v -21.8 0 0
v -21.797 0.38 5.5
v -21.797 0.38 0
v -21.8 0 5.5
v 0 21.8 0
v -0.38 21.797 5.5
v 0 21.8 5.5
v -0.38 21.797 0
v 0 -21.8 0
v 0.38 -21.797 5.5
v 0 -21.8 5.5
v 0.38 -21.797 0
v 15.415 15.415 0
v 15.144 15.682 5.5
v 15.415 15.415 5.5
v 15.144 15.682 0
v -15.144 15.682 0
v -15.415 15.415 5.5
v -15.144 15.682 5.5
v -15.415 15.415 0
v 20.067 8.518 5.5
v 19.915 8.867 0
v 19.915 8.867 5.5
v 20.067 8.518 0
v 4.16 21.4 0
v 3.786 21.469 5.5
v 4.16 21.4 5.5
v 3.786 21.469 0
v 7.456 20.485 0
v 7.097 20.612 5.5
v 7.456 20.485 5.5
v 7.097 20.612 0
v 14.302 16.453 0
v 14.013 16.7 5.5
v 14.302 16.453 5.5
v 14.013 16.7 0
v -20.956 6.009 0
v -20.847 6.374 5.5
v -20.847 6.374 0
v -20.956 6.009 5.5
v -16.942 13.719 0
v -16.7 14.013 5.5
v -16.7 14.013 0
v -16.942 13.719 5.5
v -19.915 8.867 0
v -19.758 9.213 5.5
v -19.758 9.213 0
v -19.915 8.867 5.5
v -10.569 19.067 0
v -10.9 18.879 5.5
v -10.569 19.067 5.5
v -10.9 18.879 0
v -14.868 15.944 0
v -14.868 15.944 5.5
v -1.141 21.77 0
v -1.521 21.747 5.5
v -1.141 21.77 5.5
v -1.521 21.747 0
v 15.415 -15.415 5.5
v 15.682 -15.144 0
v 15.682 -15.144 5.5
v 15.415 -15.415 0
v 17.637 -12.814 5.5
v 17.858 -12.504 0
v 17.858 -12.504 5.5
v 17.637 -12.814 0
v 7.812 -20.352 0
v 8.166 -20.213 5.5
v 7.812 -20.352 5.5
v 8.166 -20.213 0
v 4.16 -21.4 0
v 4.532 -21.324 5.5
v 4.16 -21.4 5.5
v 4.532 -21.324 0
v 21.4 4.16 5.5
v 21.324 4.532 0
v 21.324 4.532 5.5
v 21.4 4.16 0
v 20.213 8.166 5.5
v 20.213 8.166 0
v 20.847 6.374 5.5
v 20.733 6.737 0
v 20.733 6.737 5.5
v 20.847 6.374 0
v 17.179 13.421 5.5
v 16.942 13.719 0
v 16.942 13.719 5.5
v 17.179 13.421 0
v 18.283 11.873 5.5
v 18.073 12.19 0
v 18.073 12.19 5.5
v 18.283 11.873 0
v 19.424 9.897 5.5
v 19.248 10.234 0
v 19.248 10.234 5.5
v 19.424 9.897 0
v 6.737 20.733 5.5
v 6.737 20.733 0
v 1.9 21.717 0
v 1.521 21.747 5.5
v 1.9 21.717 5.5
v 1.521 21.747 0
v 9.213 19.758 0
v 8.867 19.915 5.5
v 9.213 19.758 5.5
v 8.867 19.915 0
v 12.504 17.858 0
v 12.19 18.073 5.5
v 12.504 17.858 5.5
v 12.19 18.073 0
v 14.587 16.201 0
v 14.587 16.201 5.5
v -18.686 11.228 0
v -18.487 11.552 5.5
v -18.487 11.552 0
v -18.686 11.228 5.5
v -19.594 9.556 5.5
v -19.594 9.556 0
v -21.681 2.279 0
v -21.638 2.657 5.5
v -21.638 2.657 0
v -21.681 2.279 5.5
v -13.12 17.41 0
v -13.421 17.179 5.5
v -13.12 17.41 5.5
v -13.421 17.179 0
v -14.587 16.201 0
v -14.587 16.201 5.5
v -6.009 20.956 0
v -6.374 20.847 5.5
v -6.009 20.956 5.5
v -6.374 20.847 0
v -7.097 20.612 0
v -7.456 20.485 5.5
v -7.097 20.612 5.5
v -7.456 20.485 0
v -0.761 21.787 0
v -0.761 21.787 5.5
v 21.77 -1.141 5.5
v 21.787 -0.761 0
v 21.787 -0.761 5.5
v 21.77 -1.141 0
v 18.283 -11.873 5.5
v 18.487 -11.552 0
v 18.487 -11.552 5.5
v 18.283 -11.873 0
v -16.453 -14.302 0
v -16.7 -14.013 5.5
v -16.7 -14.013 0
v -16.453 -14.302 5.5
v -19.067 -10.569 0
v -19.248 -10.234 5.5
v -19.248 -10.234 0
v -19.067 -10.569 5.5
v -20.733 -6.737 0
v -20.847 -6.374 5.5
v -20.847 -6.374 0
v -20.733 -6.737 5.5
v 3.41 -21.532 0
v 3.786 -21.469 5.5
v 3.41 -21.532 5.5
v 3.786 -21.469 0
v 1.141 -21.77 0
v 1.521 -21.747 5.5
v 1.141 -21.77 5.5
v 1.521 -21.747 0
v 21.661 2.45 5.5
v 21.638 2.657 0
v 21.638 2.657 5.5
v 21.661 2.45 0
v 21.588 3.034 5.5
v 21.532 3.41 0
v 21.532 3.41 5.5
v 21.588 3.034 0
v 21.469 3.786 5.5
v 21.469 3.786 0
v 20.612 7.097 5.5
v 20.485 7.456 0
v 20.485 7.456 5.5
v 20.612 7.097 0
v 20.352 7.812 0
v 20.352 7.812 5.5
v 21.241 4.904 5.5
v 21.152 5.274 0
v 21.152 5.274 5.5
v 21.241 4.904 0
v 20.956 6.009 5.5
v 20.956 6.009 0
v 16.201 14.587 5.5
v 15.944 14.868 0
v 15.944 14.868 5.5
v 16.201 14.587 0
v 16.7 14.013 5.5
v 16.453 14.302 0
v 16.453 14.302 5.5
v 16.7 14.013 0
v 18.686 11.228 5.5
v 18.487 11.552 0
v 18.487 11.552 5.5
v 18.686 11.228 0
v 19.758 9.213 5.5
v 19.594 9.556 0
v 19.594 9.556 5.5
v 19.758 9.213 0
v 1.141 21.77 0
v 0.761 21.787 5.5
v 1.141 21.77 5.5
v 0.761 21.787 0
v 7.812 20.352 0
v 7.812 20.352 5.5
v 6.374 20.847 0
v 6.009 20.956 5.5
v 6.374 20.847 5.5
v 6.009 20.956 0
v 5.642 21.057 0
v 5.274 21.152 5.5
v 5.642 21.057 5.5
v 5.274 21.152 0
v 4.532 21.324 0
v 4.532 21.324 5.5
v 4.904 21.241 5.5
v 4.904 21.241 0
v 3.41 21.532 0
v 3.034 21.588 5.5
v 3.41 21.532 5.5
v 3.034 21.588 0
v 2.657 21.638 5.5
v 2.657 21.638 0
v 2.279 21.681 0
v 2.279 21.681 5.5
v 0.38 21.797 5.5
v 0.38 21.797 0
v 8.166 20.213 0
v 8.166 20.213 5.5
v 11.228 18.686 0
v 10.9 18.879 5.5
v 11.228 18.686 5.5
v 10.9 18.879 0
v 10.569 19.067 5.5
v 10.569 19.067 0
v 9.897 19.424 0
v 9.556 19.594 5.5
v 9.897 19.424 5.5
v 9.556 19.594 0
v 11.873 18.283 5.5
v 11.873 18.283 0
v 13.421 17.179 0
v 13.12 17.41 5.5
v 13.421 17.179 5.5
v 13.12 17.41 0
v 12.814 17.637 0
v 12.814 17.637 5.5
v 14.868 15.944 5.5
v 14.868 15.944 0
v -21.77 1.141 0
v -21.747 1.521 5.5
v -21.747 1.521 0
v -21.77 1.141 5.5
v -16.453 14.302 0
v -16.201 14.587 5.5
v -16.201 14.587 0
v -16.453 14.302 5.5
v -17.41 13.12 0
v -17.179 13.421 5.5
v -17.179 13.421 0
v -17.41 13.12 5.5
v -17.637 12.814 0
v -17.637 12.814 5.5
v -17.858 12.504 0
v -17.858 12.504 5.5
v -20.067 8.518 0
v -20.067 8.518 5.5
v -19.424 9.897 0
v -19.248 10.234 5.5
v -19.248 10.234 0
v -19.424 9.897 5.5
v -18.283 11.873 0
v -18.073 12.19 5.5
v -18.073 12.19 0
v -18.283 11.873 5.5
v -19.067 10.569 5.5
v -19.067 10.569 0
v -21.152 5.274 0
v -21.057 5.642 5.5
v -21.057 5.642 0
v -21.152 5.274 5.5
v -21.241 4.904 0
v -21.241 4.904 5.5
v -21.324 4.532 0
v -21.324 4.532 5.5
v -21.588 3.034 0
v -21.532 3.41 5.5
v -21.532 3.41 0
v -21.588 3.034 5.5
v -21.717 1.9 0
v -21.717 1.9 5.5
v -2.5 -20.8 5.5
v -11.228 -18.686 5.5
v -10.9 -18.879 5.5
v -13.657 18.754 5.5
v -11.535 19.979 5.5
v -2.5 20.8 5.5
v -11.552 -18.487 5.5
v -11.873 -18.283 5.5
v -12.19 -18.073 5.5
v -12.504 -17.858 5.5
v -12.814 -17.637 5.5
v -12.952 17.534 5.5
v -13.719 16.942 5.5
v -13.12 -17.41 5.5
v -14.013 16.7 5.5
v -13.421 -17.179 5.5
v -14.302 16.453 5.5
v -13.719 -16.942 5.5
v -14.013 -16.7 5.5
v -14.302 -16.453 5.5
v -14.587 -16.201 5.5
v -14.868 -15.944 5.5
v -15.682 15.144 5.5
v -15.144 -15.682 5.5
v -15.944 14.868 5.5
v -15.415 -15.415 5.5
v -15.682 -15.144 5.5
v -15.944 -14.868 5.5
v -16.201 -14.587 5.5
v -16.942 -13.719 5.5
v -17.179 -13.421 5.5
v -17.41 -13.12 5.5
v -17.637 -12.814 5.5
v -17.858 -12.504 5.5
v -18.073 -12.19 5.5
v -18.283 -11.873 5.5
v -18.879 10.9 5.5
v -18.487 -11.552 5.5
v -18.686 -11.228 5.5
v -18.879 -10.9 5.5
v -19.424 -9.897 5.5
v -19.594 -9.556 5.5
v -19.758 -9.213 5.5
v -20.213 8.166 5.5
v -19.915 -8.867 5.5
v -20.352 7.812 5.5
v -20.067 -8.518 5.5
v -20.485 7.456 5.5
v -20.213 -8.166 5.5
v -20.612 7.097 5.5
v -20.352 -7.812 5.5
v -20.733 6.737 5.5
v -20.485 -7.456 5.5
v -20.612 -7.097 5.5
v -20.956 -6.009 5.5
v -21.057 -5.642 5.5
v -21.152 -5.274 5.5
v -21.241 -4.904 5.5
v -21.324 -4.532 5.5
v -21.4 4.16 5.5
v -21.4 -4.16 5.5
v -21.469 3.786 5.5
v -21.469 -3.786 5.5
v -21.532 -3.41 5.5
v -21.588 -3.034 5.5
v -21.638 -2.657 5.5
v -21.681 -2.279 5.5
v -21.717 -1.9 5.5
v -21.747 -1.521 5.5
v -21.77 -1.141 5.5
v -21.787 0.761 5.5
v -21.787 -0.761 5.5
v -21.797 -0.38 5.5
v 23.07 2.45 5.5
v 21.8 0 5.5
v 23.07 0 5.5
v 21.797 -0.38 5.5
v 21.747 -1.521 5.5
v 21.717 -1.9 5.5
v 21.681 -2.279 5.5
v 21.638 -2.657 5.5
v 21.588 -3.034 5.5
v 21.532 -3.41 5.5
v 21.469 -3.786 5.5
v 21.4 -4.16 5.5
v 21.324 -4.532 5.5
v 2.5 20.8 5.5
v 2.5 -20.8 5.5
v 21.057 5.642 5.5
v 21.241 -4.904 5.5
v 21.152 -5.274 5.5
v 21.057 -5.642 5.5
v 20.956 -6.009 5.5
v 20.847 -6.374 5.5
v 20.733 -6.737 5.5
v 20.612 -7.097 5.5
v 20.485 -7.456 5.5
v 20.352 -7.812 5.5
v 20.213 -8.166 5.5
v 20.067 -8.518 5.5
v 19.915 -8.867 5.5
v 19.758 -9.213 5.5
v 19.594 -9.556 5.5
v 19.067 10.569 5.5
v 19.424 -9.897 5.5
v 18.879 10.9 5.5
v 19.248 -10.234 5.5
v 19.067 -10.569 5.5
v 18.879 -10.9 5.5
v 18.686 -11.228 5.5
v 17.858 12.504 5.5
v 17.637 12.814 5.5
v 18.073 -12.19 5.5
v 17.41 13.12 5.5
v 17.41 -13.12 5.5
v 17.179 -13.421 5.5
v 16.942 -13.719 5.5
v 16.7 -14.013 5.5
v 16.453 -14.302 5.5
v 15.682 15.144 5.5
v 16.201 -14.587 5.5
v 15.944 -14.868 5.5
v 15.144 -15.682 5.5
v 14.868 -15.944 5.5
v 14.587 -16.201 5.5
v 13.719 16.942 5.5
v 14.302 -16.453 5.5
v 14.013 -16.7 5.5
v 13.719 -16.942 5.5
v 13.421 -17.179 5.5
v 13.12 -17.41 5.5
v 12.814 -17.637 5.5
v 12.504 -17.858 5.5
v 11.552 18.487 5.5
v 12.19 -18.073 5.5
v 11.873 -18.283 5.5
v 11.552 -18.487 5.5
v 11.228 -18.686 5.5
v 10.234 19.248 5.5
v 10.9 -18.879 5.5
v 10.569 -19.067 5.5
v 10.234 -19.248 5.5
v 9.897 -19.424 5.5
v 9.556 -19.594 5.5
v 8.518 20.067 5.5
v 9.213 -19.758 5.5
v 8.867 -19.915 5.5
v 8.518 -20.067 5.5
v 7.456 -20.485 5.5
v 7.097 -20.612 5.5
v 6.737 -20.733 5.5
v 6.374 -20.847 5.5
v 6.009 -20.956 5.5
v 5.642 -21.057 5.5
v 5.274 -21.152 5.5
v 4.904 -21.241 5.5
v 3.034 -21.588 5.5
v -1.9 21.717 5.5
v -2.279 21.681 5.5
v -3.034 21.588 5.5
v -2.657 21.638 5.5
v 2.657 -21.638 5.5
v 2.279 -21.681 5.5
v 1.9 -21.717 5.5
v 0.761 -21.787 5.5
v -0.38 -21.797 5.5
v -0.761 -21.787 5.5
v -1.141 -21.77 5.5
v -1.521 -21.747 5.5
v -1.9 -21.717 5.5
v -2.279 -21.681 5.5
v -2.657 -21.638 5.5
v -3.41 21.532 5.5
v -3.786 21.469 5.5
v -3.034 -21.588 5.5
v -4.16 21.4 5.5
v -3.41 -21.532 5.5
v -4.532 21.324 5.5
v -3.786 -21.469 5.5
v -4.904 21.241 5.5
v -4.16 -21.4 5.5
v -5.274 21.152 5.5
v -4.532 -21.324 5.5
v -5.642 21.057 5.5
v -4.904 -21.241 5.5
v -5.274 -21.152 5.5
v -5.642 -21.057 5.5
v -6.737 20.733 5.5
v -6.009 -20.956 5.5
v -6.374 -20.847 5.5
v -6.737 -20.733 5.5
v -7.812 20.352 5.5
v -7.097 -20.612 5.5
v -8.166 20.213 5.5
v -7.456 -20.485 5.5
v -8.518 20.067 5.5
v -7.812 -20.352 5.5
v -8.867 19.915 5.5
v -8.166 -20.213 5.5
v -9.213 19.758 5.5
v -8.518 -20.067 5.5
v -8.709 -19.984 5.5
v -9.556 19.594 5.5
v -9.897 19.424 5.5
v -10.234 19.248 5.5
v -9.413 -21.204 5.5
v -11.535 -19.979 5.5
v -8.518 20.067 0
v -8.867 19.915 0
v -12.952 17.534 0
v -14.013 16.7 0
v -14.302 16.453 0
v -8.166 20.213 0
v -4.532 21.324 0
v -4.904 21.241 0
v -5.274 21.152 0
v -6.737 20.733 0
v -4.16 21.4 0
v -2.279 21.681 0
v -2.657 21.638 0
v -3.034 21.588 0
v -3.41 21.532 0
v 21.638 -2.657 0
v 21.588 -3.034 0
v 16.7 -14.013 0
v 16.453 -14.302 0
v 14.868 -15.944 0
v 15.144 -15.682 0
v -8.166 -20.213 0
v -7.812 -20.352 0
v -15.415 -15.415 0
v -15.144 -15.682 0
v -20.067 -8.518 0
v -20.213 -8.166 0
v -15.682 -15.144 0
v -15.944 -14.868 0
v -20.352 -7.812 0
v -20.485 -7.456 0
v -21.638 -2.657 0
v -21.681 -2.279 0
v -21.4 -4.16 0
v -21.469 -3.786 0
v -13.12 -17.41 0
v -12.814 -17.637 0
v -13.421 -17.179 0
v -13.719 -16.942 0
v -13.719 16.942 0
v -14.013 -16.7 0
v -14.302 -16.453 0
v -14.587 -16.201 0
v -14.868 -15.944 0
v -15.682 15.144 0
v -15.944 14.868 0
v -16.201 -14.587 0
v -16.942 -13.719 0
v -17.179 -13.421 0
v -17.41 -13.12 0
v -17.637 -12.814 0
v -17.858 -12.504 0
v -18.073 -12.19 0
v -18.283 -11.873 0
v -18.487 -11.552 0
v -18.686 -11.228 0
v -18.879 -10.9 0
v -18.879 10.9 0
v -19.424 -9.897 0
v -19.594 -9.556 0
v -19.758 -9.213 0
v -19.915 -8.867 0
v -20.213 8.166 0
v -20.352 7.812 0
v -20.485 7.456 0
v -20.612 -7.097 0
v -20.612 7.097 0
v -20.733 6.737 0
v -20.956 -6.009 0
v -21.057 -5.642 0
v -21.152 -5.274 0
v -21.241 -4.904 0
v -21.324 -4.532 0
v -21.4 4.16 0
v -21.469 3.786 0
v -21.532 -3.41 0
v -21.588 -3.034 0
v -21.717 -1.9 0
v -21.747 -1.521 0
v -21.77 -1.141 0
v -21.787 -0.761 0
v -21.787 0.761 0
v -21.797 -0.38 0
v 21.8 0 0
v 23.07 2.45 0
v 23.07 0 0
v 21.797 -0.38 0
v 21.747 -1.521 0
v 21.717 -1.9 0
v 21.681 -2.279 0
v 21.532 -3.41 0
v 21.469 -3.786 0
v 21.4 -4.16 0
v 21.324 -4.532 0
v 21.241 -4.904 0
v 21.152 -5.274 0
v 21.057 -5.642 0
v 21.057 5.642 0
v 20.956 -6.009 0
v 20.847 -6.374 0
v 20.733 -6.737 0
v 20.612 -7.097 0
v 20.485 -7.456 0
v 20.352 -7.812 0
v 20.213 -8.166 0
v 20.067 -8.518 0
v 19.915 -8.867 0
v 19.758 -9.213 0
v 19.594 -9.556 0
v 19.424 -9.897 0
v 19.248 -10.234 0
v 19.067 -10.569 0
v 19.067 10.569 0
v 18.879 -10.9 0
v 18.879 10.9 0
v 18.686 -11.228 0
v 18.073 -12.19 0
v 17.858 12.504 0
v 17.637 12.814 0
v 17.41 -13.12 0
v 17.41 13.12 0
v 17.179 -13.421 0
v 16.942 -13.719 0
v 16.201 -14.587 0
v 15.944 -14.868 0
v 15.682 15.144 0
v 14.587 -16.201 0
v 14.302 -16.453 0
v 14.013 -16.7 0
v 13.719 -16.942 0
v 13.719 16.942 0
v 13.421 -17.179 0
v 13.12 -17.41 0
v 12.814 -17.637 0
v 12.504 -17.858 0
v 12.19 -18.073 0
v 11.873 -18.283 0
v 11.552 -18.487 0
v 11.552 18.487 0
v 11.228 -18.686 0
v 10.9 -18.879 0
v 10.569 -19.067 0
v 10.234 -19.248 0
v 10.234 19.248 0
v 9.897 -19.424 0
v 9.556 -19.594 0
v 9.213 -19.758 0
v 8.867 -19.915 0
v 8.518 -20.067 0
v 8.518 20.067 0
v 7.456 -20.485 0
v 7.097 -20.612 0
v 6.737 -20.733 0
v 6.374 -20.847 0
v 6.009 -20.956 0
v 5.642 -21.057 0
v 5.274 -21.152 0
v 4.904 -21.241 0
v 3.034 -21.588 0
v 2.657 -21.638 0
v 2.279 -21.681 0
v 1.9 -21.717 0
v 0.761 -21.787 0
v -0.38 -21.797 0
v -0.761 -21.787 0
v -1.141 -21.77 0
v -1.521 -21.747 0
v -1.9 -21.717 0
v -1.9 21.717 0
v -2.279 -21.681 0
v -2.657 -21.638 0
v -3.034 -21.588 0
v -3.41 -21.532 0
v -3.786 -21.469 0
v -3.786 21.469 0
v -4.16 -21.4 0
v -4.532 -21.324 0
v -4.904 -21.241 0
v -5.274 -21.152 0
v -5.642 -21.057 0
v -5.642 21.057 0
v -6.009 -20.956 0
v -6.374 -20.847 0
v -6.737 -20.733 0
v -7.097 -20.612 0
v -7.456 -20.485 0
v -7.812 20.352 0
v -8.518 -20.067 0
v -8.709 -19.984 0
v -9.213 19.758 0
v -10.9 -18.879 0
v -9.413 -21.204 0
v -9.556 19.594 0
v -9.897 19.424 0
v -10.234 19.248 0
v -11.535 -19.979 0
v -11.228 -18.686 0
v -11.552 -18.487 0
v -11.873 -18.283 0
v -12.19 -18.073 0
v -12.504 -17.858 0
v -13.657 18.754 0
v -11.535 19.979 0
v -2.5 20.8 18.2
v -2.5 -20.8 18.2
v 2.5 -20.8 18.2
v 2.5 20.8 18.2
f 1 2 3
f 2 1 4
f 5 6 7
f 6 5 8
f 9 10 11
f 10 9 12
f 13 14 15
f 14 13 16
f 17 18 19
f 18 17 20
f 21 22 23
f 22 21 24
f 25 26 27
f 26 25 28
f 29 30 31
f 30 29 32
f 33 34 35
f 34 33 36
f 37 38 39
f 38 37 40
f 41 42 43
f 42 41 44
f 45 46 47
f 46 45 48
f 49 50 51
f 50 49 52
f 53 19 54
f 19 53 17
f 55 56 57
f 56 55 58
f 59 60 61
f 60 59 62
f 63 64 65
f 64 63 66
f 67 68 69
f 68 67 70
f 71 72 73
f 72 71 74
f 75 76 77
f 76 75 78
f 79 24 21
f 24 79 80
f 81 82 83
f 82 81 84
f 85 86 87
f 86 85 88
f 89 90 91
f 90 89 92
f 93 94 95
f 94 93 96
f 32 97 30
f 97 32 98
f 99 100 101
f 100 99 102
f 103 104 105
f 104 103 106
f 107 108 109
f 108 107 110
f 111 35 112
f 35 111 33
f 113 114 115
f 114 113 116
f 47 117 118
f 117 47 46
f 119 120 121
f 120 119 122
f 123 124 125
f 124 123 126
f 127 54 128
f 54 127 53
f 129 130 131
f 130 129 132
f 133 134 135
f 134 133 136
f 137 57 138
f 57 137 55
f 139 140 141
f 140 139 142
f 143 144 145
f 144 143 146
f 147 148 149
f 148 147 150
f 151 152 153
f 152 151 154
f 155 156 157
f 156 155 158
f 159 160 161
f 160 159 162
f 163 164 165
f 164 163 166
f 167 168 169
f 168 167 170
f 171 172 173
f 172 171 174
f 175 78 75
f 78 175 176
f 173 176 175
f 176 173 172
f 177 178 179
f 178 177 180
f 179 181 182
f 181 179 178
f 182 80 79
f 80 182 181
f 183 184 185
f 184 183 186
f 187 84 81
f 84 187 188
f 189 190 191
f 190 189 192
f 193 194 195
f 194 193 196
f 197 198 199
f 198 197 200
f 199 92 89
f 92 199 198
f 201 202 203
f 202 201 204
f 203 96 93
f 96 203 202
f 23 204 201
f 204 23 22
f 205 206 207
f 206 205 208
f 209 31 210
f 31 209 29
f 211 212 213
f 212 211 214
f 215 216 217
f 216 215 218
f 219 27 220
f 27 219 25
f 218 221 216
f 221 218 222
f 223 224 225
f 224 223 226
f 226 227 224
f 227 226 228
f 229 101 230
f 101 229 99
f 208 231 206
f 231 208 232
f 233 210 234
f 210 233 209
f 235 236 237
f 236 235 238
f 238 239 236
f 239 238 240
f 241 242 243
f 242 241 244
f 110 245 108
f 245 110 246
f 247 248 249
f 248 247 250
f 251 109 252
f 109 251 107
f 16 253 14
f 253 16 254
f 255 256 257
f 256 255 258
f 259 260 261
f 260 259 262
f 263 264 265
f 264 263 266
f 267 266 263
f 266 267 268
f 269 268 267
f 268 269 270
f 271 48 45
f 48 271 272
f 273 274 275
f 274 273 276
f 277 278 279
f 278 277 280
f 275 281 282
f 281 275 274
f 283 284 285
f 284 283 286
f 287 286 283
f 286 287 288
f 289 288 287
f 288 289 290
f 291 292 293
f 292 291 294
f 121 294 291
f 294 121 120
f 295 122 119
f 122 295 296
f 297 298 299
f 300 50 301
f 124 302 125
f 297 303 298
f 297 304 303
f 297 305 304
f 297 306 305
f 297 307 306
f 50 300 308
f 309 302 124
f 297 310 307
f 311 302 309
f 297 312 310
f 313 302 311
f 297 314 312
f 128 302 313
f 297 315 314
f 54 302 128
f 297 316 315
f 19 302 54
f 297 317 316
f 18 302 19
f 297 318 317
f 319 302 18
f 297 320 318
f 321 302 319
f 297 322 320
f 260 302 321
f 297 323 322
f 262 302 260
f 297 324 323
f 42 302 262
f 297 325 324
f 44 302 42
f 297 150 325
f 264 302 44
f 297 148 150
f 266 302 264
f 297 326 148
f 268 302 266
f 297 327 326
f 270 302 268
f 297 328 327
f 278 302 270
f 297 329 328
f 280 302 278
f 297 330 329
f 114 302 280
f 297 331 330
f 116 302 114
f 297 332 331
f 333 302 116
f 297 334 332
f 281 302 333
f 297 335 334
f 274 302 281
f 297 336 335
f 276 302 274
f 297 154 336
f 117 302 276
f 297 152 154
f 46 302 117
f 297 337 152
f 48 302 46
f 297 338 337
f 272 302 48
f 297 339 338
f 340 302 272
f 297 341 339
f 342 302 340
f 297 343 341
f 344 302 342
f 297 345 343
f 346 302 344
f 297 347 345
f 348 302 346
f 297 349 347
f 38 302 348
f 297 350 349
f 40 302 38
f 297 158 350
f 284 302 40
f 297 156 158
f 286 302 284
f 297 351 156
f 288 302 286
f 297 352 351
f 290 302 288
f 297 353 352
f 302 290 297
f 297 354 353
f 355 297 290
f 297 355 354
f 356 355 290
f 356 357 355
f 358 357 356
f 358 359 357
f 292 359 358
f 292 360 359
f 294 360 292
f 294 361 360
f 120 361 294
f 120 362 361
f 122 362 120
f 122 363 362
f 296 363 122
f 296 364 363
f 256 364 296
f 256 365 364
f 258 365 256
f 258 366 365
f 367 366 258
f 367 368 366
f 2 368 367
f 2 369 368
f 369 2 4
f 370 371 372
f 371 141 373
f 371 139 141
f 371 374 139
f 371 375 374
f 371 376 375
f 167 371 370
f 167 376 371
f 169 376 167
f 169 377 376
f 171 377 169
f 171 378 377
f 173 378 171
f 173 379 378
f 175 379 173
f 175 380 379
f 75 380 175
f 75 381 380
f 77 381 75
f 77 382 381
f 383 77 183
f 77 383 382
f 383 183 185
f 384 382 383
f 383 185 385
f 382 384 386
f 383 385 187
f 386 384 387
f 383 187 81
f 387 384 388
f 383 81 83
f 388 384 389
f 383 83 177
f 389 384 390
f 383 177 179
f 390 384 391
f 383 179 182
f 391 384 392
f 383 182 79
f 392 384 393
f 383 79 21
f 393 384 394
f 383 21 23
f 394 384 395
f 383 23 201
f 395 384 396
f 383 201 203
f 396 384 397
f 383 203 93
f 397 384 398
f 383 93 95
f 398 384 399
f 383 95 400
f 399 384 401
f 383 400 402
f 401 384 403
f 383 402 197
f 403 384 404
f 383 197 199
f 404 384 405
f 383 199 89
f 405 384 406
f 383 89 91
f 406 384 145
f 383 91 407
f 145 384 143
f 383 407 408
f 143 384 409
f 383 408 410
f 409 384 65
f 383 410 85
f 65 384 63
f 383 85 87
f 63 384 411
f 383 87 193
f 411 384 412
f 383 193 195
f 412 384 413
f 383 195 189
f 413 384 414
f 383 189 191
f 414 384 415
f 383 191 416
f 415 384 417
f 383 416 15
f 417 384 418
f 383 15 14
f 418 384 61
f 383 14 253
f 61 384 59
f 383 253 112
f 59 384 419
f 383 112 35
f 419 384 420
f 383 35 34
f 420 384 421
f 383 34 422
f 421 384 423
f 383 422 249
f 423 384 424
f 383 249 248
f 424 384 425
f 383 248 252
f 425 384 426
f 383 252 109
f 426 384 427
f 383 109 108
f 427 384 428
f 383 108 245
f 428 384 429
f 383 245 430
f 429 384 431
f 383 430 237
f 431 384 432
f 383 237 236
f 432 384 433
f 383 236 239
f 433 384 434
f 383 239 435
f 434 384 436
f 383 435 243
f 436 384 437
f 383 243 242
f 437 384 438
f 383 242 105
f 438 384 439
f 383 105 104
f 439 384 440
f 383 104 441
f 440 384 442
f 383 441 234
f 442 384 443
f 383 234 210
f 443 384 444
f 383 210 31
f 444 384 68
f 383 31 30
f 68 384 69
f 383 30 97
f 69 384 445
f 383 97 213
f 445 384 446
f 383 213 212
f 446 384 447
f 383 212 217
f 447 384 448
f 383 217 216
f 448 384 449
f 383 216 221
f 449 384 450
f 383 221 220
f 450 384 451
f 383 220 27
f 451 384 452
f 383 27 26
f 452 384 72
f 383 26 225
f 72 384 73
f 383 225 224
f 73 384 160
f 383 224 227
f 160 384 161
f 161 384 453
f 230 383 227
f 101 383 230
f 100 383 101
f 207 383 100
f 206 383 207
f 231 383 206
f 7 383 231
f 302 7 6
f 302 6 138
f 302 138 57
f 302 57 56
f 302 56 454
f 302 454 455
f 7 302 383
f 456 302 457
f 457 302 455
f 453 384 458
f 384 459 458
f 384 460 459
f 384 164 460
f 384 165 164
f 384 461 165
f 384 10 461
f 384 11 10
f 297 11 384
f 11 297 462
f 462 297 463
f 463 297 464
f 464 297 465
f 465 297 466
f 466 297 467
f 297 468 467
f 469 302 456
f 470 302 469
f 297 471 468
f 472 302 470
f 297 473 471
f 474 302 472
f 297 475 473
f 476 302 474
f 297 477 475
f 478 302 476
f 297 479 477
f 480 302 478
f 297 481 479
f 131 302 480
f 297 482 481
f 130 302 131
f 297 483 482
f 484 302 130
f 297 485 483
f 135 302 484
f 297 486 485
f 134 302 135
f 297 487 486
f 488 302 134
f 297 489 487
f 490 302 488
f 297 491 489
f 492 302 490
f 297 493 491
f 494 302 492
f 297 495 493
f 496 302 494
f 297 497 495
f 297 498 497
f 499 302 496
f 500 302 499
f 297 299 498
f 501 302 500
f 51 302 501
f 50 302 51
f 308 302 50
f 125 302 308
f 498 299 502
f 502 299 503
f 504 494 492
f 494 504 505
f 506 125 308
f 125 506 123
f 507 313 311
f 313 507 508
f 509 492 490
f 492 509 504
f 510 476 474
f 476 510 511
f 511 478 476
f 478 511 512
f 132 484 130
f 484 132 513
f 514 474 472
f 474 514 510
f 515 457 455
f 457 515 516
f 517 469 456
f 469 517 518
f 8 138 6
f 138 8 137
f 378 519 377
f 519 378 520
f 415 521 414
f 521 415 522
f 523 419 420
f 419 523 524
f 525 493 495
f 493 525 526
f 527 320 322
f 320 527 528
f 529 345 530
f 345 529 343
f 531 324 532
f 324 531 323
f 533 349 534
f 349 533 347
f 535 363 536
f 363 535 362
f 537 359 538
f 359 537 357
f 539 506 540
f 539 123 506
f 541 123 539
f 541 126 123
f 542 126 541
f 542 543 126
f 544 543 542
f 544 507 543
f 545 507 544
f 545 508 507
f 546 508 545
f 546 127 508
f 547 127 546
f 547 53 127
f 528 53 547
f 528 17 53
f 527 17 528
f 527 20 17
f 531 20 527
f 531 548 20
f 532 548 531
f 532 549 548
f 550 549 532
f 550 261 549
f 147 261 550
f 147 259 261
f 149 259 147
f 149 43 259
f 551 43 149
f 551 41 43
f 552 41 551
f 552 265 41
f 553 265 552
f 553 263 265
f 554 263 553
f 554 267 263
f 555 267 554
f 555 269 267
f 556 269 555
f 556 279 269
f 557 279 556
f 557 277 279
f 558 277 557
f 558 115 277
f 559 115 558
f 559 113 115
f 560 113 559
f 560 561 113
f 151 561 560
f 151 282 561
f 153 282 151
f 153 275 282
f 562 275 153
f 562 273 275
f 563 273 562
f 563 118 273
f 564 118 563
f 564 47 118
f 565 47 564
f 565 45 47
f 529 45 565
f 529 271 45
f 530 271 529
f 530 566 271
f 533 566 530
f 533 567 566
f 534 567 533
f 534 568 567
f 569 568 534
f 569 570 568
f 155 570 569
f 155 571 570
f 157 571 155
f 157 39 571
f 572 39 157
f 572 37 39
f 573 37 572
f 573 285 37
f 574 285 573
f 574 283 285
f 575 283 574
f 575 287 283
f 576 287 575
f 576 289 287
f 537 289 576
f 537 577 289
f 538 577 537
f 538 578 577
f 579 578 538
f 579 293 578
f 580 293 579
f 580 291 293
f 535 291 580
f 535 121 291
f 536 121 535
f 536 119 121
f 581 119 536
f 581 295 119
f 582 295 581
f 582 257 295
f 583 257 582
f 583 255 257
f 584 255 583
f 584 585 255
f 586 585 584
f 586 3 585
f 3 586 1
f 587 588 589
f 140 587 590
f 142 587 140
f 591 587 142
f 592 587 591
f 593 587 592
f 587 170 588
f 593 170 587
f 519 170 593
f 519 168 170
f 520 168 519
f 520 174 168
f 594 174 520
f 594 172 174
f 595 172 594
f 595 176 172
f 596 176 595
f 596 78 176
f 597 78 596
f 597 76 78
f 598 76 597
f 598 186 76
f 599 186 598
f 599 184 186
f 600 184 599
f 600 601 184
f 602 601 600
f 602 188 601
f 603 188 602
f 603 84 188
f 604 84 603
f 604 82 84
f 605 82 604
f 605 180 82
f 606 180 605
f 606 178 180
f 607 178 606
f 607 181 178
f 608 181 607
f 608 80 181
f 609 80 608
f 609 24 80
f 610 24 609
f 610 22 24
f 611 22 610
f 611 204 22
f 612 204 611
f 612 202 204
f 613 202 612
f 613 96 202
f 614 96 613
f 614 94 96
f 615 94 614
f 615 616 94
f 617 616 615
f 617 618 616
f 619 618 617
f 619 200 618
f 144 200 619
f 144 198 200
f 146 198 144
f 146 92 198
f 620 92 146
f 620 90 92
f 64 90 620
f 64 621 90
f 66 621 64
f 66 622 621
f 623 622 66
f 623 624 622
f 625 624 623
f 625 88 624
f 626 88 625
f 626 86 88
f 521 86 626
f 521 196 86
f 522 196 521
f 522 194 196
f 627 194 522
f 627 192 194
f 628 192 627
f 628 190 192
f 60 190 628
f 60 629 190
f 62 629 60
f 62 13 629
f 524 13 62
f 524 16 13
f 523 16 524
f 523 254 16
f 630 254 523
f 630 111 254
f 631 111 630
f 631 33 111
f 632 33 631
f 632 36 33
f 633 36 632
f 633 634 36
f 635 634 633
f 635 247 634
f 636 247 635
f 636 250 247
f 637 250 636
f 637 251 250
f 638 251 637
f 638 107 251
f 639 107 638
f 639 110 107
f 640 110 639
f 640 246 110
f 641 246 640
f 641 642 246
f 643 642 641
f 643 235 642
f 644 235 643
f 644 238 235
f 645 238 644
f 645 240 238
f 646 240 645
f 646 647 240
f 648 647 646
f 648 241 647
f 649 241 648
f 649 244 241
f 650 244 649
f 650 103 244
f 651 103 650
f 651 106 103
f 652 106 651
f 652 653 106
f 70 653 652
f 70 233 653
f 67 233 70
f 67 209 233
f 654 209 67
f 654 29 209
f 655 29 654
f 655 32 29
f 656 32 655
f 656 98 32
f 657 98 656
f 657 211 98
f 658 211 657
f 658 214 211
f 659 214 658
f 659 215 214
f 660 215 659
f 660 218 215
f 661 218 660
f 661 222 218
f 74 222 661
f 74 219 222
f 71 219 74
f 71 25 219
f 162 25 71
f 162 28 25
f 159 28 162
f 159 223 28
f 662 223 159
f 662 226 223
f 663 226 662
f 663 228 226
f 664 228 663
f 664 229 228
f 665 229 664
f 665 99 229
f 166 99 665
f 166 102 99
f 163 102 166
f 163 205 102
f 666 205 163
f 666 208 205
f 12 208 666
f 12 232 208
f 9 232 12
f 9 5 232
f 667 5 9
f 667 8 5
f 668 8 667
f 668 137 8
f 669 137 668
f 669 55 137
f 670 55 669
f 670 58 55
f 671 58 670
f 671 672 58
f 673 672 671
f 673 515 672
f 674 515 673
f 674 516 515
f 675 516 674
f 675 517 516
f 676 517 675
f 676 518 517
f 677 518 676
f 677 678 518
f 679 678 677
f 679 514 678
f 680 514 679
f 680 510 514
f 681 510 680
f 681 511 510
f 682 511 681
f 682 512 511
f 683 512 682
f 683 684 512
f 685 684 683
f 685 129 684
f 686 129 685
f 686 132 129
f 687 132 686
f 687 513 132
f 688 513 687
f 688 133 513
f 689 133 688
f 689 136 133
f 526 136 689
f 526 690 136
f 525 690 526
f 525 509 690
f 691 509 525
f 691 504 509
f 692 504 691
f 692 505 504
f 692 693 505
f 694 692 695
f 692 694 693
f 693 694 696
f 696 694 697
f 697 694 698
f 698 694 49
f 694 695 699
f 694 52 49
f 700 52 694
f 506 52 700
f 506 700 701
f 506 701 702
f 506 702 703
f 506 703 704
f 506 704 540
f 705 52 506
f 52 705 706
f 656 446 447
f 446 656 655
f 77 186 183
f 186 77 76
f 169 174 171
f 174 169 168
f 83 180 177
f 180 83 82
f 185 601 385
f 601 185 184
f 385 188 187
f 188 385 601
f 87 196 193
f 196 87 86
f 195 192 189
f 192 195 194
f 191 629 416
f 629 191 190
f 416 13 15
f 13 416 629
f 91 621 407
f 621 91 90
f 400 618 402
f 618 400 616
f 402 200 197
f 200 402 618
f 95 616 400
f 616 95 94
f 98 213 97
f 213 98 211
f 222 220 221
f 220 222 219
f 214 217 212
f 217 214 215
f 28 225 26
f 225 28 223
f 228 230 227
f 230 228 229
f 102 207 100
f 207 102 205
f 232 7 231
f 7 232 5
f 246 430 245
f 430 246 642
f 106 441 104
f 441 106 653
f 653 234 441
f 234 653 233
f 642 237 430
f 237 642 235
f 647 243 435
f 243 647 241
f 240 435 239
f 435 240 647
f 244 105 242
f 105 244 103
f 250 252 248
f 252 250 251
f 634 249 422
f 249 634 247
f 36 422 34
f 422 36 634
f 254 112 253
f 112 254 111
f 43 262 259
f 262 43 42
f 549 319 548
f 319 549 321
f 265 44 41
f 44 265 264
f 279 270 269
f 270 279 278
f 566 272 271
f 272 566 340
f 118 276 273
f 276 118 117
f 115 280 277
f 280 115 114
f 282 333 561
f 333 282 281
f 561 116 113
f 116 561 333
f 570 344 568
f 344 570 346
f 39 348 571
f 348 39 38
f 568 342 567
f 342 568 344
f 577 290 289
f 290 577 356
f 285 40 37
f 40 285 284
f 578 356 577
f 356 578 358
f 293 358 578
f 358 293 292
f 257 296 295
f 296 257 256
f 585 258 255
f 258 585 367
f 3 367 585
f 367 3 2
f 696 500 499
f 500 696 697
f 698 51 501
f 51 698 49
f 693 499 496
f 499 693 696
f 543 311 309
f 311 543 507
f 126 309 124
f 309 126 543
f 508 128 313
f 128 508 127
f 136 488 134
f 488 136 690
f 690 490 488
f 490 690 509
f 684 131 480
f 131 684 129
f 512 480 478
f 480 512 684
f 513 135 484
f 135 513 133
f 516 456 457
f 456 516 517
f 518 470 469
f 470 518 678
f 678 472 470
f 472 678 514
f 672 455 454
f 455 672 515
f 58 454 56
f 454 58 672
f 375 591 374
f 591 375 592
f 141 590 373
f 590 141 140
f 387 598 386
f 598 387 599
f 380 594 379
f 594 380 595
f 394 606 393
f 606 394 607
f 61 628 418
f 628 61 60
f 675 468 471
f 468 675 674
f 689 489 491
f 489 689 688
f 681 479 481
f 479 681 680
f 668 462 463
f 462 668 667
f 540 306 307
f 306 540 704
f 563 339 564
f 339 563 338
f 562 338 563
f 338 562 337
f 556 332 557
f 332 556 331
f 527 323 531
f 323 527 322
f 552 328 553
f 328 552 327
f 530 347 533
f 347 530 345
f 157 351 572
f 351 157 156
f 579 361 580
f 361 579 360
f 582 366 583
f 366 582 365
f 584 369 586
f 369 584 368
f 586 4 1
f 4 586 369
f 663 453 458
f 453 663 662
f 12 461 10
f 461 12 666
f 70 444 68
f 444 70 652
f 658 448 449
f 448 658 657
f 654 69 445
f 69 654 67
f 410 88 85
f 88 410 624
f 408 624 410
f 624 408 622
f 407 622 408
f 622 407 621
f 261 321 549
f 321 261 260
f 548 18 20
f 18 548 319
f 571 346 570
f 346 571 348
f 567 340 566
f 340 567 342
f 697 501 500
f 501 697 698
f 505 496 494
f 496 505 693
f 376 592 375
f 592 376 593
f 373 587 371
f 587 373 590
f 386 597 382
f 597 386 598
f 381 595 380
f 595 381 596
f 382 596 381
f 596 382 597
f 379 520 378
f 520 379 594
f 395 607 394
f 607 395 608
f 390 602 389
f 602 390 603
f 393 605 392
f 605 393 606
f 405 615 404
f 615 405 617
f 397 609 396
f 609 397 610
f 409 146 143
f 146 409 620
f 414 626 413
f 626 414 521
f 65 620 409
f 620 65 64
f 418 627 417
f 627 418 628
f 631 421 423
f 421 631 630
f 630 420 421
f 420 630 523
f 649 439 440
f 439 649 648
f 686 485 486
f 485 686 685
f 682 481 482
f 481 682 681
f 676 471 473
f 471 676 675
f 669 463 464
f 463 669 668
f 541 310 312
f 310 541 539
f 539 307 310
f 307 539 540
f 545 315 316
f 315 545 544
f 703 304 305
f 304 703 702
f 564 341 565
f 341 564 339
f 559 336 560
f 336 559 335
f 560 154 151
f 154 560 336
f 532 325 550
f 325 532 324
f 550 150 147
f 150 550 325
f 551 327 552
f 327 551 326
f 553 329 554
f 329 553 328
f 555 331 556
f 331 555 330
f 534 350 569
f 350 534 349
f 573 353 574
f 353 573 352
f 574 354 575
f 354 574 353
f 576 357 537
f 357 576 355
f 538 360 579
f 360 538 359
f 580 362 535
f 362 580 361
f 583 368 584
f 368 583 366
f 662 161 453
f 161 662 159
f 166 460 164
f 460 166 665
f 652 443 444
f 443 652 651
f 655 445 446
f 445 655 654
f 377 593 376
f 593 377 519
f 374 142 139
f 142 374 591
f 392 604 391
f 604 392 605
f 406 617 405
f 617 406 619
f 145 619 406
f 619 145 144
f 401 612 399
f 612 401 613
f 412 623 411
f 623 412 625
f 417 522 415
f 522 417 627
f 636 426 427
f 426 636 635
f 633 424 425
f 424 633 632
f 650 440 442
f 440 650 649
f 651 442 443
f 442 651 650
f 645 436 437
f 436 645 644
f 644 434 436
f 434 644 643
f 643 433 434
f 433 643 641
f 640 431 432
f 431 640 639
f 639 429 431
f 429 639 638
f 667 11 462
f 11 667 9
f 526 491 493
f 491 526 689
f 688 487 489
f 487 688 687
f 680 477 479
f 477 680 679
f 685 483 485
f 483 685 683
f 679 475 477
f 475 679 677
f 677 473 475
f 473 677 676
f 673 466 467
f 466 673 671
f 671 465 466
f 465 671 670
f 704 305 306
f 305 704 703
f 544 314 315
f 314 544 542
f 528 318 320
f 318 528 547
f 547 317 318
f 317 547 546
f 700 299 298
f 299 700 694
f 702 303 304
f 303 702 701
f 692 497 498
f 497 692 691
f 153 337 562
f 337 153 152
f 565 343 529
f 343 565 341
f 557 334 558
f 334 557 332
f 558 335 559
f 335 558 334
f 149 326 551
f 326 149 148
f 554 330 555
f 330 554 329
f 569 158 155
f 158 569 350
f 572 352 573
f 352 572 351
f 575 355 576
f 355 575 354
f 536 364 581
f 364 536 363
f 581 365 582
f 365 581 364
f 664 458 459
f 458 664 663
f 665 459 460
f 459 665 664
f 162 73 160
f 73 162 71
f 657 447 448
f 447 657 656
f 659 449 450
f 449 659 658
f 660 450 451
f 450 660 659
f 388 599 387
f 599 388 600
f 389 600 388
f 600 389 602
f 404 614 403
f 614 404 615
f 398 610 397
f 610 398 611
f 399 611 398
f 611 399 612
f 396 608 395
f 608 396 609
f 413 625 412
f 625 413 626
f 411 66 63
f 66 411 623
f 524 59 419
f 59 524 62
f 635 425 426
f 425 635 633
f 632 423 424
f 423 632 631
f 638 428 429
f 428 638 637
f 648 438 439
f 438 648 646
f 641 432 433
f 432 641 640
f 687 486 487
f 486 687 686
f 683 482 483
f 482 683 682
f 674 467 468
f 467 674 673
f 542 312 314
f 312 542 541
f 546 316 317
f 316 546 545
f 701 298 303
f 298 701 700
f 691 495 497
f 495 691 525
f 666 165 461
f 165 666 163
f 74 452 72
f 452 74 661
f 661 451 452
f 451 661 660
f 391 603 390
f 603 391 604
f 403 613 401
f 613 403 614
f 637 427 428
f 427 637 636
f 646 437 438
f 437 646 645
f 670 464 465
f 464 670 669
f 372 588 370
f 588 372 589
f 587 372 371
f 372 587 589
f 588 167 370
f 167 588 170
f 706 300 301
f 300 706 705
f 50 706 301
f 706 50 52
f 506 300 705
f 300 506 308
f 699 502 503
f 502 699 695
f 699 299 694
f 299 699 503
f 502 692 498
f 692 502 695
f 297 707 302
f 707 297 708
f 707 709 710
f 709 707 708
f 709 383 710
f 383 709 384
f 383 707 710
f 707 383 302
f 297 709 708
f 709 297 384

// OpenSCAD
sides=360;

plug_dia      = 43.60;
plug_height   = 5.50;
ear_length    = 1.27;
ear_width     = 2.45;
handle_height = 25.40 / 2;
handle_width  = 5.00;

module plug () {
  translate ([0, 0, 0]) {
    cylinder (d=plug_dia, h=plug_height, $fn=sides);

    rotate ([0, 0, 0])
      cube ([(plug_dia / 2) + ear_length, ear_width, plug_height]);
    rotate ([0, 0, 120])
      cube ([(plug_dia / 2) + ear_length, ear_width, plug_height]);
    rotate ([0, 0, 240])
      cube ([(plug_dia / 2) + ear_length, ear_width, plug_height]);
  }
}

module handle () {
  translate ([-(handle_width / 2), -((plug_dia - 2) / 2), plug_height])
    cube ([handle_width, (plug_dia - 2), handle_height], center=false);
}

plug ();
handle ();
